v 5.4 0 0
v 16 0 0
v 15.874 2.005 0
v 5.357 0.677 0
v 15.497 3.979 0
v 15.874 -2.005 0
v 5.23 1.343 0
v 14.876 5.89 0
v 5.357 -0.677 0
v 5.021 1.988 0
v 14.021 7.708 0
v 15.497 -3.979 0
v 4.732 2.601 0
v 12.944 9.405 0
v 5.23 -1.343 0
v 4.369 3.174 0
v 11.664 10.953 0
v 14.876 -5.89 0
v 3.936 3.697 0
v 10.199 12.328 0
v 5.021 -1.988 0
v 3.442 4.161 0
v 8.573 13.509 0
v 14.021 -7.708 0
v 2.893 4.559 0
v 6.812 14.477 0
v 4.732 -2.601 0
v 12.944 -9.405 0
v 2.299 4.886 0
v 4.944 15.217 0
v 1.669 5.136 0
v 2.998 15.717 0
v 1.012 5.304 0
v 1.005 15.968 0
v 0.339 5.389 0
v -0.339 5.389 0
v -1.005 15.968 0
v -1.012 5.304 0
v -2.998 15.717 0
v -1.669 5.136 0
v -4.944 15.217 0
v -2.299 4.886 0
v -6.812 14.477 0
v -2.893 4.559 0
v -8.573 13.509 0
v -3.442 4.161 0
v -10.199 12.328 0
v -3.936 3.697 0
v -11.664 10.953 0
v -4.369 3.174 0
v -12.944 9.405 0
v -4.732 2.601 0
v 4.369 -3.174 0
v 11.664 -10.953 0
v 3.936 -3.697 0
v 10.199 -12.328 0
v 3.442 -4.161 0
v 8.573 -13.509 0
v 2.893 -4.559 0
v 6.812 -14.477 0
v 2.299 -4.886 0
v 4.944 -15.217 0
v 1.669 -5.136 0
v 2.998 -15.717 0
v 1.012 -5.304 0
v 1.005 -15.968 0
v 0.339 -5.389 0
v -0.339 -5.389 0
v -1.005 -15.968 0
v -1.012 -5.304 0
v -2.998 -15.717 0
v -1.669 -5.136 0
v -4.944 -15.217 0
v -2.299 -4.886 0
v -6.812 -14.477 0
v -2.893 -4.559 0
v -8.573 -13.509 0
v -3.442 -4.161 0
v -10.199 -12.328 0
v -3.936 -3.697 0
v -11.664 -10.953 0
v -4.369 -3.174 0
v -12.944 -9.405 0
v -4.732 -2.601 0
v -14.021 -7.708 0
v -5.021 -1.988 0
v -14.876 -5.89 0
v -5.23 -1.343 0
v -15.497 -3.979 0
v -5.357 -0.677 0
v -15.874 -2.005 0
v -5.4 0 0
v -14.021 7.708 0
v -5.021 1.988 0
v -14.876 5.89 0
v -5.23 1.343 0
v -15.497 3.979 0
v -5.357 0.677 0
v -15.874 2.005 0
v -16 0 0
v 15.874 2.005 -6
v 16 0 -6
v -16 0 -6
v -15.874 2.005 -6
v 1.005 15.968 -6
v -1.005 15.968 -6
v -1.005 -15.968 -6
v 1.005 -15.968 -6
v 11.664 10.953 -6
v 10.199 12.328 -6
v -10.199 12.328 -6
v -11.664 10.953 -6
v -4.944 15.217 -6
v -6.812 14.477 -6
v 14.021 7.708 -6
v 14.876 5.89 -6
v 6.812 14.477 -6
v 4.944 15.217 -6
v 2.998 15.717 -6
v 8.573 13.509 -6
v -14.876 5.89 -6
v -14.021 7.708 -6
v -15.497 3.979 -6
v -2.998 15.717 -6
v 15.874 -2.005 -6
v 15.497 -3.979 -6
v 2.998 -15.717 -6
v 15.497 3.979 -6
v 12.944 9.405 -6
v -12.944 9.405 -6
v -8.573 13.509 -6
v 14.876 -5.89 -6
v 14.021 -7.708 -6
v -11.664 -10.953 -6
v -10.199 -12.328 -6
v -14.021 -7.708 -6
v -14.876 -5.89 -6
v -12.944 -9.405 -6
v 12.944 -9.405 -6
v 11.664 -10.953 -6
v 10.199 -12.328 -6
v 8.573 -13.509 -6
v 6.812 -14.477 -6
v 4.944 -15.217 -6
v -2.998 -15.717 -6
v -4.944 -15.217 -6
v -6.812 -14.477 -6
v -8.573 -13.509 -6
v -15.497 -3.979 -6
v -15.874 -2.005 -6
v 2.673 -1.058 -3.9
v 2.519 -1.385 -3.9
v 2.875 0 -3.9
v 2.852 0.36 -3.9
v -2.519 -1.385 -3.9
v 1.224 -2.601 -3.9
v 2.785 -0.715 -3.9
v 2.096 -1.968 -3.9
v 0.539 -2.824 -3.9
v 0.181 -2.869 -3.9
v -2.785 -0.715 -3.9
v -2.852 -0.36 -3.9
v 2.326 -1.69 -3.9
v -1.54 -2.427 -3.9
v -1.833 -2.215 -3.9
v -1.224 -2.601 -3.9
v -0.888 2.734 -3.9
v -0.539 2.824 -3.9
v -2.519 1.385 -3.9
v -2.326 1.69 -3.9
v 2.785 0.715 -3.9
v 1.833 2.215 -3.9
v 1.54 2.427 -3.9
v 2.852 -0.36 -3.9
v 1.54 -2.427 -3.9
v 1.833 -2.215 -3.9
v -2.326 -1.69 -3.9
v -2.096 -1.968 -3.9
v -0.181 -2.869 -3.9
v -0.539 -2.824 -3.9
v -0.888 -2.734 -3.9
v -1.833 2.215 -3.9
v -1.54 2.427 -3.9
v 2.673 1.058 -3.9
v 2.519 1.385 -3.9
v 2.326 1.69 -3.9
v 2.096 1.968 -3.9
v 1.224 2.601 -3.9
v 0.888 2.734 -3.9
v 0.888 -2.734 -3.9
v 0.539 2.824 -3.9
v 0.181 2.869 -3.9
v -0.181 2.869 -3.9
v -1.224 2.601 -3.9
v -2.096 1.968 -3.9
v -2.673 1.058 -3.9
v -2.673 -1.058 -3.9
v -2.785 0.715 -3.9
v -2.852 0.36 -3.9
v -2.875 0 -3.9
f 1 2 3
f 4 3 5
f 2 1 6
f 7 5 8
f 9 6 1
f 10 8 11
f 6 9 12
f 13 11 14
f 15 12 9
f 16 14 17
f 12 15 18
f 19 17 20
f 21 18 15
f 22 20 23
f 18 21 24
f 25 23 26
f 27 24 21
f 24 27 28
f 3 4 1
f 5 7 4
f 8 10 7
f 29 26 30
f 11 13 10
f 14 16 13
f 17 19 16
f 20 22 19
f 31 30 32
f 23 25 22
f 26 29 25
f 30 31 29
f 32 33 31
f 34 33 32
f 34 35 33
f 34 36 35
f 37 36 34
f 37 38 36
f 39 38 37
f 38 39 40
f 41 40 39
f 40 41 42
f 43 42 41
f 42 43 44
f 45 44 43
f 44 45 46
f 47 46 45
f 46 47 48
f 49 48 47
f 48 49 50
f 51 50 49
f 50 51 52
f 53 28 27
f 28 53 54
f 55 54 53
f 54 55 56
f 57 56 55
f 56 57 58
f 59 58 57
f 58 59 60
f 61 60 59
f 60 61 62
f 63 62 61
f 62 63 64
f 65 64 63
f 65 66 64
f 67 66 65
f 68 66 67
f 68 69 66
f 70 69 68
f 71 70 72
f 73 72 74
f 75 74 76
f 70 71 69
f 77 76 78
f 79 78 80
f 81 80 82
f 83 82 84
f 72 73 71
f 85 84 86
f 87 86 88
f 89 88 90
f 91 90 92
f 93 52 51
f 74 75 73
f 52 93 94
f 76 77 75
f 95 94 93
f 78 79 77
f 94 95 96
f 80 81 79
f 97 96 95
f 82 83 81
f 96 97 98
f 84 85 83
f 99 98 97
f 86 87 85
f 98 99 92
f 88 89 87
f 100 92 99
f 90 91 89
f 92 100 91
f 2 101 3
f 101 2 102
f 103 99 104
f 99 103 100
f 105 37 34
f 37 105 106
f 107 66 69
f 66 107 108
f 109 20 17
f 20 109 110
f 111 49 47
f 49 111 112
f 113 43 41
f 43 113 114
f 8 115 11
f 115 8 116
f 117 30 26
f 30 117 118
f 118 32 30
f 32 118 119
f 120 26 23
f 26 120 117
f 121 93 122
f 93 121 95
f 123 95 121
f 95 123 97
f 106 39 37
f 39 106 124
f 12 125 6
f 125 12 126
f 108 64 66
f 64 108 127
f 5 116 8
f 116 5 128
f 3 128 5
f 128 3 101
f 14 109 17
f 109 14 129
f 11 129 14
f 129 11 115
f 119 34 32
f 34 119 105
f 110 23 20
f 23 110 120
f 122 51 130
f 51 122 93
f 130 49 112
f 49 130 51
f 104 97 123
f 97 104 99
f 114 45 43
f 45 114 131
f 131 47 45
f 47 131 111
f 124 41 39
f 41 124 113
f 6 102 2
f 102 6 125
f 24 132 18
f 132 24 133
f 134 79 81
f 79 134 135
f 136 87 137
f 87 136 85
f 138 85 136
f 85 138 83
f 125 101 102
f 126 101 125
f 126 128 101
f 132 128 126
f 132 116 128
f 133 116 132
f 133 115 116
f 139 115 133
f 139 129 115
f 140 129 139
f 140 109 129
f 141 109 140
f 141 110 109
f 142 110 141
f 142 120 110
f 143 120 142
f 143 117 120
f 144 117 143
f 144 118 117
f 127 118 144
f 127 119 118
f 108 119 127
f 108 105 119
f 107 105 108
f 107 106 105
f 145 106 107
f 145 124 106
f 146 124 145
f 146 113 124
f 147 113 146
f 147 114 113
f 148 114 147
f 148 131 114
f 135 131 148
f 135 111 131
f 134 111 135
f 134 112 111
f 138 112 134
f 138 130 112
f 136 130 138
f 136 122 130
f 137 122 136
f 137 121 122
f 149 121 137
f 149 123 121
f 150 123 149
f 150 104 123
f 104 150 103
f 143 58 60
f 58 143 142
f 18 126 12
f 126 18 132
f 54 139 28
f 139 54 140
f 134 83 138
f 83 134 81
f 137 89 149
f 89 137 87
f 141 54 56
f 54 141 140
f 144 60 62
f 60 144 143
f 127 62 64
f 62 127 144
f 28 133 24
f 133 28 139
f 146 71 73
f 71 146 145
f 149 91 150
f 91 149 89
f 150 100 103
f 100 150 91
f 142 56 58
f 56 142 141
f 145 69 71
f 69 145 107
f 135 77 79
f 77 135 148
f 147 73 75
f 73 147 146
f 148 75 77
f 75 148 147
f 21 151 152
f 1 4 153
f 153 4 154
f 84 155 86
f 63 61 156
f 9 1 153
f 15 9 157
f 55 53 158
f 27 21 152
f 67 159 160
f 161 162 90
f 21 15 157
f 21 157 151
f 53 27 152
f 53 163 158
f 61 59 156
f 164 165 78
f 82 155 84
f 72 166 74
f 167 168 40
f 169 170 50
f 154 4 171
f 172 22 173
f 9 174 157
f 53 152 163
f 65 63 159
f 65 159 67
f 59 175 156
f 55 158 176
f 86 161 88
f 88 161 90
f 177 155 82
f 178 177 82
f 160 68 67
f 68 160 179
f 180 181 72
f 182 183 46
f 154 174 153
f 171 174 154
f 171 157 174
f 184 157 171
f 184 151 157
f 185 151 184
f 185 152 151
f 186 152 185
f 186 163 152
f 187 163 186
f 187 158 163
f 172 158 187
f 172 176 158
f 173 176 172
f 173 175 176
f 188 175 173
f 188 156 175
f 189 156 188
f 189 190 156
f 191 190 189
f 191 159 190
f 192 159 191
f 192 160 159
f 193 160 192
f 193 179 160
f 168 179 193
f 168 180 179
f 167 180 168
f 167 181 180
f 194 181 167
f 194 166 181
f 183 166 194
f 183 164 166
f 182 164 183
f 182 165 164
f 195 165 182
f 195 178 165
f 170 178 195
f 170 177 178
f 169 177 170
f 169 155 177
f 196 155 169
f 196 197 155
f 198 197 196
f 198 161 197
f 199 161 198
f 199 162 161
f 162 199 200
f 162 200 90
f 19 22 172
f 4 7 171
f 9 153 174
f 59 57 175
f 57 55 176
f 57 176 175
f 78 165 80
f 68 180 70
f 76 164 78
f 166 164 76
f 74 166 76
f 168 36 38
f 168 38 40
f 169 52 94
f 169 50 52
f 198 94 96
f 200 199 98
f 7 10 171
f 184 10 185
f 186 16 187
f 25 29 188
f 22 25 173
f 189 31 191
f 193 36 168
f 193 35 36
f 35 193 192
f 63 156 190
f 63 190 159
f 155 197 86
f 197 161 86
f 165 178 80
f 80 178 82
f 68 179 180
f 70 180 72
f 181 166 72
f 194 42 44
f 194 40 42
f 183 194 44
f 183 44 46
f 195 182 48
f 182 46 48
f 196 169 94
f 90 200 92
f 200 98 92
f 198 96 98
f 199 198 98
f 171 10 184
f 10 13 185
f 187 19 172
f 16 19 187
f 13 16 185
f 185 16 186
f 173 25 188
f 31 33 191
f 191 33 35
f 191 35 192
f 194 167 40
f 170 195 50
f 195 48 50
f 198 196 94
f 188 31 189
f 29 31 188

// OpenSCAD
$fn = 50;


difference() {
	union() {
		translate(v = [0, 0, -3.0000000000]) {
			cylinder(h = 3, r = 10.0000000000);
		}
		translate(v = [0, 0, -6.0000000000]) {
			cylinder(h = 6, r = 16.0000000000);
		}
	}
	union() {
		translate(v = [0, 0, 0]) {
			rotate(a = [0, 0, 0]) {
				difference() {
					union() {
						#translate(v = [0, 0, -3.0000000000]) {
							cylinder(h = 3, r = 2.6000000000);
						}
						#translate(v = [0, 0, -3.9000000000]) {
							cylinder(h = 3.9000000000, r1 = 2.8750000000, r2 = 5.4000000000);
						}
						#translate(v = [0, 0, -3.0000000000]) {
							cylinder(h = 3, r = 2.8750000000);
						}
						#translate(v = [0, 0, -3.0000000000]) {
							cylinder(h = 3, r = 2.6000000000);
						}
					}
					union();
				}
			}
		}
	}
}
